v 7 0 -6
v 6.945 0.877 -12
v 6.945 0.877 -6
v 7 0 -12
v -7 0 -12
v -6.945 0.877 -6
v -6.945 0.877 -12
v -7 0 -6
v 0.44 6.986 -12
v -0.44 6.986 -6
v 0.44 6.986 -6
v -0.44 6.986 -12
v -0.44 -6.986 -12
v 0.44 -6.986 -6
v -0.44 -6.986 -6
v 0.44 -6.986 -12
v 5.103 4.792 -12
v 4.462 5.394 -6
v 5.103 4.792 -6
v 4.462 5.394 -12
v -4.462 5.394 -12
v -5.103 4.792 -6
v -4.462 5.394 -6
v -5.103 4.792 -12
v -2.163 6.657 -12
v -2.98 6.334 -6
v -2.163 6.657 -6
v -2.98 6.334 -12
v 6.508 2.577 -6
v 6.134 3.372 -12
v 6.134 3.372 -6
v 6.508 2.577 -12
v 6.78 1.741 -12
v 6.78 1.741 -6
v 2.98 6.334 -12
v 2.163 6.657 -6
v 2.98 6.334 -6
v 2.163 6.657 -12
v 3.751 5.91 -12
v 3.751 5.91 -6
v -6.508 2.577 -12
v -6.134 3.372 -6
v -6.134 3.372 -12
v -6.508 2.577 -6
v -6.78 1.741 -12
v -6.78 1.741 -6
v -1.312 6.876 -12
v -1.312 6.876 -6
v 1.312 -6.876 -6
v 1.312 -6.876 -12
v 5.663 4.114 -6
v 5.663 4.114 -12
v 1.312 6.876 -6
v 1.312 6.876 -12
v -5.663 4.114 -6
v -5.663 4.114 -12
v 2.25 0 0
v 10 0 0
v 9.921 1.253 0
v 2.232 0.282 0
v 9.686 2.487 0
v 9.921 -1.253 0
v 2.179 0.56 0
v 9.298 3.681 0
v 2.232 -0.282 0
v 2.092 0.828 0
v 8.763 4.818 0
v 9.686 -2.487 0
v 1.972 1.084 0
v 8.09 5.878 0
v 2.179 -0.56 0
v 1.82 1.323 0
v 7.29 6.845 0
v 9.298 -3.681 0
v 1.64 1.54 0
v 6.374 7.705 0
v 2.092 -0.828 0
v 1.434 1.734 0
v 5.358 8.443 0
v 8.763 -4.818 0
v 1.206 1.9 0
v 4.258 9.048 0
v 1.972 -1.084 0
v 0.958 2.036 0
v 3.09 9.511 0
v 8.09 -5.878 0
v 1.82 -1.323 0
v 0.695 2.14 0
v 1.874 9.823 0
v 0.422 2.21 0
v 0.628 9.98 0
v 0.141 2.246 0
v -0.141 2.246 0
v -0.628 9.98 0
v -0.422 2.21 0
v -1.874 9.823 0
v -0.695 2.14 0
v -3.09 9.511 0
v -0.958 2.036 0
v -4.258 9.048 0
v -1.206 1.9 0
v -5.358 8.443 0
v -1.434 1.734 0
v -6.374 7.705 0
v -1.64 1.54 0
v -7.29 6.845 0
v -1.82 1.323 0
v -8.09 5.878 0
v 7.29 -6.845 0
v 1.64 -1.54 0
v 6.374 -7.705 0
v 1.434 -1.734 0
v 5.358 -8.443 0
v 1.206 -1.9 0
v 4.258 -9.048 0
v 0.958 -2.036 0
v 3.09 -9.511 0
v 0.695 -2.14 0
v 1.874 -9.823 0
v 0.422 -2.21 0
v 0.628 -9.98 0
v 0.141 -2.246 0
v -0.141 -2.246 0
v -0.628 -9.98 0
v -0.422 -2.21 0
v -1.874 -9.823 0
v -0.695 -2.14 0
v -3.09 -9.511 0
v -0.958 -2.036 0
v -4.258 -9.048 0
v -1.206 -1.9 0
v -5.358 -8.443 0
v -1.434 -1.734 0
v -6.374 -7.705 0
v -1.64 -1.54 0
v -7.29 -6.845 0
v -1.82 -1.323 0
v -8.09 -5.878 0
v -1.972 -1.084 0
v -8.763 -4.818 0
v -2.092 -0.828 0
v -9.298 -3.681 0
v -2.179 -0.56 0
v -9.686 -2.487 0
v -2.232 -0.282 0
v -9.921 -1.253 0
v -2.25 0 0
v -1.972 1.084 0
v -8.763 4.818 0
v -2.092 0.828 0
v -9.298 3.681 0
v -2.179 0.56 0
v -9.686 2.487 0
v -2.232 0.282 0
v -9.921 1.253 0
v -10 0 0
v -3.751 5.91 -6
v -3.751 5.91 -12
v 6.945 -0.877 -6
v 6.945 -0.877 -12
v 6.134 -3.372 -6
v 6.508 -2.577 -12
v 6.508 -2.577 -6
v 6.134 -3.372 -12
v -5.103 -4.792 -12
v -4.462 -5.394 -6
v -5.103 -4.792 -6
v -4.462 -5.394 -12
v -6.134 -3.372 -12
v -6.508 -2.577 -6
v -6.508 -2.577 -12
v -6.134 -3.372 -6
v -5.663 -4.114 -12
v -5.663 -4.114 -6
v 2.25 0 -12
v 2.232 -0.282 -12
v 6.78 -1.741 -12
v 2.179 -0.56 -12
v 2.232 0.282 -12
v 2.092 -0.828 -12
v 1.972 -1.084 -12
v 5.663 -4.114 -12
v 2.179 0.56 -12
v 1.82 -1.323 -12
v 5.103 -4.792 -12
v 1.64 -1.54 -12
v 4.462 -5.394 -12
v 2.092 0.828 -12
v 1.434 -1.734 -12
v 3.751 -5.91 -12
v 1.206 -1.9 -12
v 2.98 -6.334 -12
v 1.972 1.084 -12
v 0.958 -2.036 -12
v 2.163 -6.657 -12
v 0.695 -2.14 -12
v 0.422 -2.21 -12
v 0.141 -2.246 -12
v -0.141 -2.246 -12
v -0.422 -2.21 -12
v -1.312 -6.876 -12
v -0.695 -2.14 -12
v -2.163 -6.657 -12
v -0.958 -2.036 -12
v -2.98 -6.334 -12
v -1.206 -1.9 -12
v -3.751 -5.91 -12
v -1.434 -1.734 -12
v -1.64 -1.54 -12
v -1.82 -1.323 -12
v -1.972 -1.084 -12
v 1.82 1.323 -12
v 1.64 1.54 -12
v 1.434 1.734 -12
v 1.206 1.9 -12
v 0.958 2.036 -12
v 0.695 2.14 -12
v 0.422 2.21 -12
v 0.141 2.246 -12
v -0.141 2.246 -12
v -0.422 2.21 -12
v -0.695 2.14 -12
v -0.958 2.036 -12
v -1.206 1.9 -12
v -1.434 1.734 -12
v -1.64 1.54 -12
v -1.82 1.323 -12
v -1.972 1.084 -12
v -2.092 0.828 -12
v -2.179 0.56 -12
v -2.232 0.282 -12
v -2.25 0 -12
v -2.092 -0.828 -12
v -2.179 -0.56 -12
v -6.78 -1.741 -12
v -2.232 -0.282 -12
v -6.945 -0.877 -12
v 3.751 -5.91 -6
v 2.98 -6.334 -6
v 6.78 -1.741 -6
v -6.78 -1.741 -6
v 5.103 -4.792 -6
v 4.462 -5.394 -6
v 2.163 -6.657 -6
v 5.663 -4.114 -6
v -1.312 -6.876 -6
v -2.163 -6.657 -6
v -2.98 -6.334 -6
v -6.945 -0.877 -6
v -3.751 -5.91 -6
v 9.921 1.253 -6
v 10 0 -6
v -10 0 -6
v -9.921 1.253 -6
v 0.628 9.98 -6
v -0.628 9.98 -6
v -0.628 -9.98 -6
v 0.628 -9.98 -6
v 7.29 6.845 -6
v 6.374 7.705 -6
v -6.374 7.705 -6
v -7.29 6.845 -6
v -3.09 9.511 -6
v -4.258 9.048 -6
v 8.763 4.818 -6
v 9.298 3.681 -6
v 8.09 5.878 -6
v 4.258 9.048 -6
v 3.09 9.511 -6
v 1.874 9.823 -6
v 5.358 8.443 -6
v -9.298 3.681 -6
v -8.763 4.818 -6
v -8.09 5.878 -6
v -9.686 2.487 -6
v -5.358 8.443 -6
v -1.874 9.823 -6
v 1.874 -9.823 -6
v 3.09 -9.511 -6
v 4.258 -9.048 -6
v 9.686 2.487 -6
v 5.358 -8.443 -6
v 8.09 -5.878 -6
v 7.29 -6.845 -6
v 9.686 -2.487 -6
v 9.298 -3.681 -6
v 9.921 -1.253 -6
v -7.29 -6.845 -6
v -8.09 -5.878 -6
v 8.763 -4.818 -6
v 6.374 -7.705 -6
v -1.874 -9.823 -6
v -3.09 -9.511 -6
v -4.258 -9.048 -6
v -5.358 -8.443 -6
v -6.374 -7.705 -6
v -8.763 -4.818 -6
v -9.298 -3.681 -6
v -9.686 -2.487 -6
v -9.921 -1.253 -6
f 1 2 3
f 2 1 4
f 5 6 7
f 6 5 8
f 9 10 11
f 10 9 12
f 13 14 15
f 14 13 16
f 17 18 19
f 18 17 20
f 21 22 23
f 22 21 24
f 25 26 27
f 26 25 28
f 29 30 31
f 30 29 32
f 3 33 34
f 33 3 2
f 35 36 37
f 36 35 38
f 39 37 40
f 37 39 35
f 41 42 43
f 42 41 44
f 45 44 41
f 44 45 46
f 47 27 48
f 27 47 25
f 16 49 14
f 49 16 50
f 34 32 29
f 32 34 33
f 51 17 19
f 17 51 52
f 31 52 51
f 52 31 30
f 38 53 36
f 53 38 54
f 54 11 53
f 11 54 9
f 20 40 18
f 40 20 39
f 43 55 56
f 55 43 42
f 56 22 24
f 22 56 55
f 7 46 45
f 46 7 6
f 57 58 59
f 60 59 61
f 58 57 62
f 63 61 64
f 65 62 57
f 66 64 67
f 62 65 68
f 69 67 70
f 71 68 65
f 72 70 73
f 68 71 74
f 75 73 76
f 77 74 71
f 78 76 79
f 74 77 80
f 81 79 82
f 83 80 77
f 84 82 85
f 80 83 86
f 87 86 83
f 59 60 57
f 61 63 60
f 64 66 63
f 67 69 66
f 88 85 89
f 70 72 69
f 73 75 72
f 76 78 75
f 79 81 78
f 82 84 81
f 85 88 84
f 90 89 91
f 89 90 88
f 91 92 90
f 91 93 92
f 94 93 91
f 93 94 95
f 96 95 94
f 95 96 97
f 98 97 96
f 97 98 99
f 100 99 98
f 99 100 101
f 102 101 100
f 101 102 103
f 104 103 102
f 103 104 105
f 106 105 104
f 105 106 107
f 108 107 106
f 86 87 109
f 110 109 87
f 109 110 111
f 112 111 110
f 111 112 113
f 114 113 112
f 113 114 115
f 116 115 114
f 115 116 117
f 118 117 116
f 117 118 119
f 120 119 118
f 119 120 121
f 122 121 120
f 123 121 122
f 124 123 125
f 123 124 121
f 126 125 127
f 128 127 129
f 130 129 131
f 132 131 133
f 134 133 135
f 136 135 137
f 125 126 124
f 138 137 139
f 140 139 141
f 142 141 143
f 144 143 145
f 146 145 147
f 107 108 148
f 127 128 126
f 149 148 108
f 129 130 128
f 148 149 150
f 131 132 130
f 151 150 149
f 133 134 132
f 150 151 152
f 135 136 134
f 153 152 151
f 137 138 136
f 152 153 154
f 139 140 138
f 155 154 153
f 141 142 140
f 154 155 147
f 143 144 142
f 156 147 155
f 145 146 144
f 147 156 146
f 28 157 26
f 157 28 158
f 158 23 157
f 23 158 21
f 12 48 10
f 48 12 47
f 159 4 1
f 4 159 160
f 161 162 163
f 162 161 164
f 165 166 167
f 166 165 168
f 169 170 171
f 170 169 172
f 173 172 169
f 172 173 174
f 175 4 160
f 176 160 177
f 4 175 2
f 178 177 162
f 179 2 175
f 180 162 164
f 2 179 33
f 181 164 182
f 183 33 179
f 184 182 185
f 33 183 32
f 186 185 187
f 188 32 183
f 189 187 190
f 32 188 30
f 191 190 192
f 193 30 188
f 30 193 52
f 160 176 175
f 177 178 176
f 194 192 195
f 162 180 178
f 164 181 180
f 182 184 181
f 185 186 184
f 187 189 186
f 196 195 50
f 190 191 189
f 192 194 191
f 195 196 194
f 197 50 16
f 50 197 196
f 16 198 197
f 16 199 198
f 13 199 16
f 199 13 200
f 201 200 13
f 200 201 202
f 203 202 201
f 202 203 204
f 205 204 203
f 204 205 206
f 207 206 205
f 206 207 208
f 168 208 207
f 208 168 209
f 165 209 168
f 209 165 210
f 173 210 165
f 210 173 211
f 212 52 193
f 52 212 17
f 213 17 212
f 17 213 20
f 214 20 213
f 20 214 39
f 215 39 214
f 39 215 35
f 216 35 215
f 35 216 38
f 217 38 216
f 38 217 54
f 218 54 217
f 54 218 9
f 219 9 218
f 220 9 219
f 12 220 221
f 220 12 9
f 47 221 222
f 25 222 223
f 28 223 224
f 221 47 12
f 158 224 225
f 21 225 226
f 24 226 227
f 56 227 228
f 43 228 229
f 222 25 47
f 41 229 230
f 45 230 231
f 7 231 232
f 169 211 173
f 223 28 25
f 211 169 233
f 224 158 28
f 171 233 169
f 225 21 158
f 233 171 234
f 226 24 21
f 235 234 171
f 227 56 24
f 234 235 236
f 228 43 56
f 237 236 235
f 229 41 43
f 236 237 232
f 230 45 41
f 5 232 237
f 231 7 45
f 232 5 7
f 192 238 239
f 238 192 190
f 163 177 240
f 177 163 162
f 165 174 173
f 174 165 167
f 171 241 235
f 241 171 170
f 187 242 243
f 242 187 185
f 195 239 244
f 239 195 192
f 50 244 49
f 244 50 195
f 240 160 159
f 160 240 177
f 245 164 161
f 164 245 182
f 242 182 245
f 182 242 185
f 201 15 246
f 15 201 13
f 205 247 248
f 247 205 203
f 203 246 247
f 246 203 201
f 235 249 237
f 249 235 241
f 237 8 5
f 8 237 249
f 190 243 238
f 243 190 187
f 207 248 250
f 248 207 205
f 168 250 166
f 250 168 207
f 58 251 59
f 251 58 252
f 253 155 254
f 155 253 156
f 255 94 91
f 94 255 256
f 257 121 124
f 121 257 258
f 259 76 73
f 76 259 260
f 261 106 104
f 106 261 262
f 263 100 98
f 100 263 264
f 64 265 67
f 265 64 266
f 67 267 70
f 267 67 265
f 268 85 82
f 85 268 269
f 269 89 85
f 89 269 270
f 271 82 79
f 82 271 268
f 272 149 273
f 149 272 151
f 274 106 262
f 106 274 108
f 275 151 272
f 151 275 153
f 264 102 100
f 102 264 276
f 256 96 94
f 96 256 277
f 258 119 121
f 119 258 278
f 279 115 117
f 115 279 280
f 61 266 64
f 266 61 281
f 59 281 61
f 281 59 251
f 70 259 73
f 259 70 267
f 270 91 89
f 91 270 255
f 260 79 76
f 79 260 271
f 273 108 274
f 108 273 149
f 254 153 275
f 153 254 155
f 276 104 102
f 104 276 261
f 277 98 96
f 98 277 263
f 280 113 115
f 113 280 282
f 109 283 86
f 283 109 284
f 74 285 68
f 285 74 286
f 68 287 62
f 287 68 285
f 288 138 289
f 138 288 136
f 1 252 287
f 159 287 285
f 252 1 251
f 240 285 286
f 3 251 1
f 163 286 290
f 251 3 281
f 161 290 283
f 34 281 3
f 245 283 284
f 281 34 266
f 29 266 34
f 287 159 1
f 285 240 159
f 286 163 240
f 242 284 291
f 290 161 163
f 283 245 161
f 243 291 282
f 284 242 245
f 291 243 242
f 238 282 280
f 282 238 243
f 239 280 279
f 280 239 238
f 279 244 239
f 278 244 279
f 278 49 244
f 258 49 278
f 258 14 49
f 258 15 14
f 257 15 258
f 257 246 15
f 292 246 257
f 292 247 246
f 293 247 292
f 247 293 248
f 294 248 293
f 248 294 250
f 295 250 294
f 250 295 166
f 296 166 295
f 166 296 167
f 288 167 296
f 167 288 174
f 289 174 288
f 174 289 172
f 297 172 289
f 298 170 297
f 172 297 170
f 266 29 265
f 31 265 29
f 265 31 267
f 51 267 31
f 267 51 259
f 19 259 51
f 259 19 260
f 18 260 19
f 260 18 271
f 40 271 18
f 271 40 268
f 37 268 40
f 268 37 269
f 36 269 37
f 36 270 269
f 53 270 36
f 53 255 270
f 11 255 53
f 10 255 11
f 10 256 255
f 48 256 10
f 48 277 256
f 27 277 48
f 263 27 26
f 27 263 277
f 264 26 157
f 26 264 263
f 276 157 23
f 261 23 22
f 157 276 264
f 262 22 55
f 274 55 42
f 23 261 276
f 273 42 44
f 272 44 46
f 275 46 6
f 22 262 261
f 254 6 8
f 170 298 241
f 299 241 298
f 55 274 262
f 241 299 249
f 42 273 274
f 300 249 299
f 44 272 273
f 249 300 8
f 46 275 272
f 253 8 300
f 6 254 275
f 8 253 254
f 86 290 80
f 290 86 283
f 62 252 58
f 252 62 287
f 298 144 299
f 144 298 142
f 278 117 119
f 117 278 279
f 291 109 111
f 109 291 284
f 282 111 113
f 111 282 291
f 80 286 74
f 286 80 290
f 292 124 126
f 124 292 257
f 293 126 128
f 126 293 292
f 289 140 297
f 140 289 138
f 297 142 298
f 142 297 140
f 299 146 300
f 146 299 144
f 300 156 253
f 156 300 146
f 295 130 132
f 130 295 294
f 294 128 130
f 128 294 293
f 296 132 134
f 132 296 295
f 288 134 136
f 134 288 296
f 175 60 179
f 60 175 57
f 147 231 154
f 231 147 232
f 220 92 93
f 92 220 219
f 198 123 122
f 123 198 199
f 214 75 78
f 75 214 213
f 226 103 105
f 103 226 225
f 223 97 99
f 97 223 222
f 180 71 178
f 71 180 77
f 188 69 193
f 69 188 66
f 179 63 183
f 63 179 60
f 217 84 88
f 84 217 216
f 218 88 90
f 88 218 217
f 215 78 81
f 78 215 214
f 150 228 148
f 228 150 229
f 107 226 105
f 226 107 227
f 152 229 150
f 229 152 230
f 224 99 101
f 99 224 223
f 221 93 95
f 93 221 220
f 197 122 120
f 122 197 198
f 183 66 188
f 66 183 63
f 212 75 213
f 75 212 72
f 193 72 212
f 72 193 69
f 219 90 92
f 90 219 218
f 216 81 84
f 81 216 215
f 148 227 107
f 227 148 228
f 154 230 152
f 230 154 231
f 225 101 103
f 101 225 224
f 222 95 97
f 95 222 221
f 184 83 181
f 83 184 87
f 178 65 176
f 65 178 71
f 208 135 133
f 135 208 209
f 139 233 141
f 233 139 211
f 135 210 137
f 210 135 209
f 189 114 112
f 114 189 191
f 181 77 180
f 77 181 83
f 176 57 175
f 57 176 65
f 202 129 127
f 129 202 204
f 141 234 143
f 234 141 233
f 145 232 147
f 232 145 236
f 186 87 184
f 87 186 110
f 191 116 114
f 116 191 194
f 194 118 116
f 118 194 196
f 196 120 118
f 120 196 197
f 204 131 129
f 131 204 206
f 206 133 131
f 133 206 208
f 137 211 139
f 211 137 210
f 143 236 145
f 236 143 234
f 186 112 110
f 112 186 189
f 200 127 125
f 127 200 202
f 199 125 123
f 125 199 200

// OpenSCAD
$fn = 50;


difference() {
	union() {
		translate(v = [0, 0, -12.0000000000]) {
			cylinder(h = 12, r = 7.0000000000);
		}
		translate(v = [0, 0, -6.0000000000]) {
			cylinder(h = 6, r = 10.0000000000);
		}
	}
	union() {
		#translate(v = [0, 0, -12]) {
			cylinder(h = 12, r = 2.2500000000);
		}
	}
}
